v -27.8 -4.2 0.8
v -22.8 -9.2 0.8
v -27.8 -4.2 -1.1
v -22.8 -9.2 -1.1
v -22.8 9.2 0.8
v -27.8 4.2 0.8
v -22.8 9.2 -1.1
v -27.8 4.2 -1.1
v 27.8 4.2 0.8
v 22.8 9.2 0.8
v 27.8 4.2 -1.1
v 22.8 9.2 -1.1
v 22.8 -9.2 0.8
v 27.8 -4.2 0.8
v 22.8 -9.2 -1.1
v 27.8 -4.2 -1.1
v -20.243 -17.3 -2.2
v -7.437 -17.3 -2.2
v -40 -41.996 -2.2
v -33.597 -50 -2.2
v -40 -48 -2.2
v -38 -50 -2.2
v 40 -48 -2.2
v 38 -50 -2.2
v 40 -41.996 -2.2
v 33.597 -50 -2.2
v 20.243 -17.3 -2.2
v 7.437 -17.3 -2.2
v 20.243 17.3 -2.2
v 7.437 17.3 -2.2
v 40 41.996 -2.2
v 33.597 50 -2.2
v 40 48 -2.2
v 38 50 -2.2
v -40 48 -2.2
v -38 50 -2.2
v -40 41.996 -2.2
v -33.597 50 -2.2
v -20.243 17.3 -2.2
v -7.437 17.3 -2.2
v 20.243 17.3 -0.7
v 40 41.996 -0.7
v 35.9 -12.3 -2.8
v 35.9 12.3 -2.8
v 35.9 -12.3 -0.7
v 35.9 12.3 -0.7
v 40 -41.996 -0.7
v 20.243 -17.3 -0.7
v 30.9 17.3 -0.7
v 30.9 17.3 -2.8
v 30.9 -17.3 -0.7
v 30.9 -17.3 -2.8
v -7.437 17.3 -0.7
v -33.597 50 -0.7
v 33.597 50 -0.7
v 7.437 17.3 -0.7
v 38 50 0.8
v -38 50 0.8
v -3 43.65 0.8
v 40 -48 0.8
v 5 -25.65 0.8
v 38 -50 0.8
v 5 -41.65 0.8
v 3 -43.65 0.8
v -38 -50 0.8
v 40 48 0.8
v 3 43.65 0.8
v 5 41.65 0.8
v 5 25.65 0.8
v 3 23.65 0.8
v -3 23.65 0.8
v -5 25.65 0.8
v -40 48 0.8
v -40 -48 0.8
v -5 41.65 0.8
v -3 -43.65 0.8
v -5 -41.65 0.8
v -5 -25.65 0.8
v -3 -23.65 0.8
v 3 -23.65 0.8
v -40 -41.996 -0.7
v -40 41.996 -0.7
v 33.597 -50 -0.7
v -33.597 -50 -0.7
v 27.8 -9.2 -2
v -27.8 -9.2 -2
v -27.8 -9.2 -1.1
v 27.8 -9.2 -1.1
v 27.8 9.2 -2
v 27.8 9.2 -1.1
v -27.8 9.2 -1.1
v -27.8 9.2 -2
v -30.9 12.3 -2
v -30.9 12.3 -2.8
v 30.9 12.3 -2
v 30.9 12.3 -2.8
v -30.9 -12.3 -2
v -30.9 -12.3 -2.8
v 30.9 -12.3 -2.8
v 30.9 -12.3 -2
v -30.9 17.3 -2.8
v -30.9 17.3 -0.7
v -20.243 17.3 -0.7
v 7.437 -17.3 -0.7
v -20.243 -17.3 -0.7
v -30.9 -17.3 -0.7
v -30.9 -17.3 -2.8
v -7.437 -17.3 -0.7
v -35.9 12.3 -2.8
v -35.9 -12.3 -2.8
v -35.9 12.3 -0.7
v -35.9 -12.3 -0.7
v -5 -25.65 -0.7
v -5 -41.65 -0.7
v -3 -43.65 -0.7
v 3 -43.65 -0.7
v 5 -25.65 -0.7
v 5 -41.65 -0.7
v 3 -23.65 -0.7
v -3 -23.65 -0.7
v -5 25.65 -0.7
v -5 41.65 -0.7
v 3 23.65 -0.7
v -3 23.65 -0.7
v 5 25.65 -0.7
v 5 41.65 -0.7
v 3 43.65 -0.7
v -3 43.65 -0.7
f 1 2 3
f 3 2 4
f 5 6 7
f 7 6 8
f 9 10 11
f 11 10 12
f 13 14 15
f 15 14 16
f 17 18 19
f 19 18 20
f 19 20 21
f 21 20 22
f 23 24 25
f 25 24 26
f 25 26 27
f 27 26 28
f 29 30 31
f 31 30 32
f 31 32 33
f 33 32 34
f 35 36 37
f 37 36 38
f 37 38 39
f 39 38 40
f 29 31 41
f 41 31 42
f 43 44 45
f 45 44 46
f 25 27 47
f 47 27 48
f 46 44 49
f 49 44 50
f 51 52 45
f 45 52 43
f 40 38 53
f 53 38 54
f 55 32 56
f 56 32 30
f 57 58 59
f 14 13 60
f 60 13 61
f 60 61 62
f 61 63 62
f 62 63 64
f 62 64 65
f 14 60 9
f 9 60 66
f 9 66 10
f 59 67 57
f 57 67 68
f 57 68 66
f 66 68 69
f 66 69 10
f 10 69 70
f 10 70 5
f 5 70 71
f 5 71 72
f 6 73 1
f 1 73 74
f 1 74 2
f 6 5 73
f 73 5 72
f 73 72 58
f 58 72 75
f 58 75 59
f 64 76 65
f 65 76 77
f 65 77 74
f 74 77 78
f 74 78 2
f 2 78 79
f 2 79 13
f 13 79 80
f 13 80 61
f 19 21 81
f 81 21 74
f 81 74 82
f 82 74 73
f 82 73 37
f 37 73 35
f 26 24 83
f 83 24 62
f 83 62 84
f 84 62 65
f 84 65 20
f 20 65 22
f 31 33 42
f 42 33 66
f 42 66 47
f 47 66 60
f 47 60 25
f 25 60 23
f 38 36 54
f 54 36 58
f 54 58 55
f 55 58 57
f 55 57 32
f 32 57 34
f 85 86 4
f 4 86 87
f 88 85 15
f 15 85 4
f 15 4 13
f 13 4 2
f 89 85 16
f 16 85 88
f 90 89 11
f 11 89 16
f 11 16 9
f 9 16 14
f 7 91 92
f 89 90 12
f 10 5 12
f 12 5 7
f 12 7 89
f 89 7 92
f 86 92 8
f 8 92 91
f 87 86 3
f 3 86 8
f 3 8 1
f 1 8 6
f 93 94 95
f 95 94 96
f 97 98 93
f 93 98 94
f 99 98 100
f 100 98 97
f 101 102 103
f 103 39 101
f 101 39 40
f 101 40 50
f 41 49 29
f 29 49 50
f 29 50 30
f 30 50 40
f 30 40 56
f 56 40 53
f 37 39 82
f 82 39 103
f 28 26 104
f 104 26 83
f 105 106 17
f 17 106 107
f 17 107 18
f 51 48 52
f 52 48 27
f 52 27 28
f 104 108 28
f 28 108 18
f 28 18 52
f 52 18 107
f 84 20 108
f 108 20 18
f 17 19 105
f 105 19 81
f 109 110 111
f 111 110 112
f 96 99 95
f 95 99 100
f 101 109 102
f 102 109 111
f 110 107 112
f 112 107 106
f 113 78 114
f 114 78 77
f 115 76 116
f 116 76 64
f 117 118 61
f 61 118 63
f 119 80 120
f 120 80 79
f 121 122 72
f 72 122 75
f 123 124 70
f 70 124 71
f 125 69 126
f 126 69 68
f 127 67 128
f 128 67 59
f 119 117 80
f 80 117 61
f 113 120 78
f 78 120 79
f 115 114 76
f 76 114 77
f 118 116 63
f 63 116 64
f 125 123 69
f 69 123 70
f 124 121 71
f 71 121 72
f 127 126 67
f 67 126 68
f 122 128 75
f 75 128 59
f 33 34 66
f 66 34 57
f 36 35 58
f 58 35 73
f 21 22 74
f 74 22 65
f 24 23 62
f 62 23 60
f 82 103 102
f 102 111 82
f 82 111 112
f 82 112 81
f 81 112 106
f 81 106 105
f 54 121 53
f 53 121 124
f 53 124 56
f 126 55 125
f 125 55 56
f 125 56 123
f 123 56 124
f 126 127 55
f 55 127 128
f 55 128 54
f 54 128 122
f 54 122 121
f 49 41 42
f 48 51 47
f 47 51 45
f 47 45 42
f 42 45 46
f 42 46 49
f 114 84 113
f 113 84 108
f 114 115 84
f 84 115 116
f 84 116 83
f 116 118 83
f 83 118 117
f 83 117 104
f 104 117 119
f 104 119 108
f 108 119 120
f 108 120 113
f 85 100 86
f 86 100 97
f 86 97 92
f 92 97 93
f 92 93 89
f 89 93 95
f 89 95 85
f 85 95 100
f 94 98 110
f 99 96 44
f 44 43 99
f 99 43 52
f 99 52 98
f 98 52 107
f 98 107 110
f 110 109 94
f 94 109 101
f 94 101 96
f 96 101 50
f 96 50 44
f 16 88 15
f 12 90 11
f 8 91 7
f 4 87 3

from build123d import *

# Parameters (mm, degrees)
ESBO_O2_W                = 80
ESBO_O2_H                = 100
ESBO_O2_W_2              = 55.6
ESBO_O2_H_2              = 18.4
RESSALTO_EXTRUS_O1_DEPTH = 0.8
RESSALTO_EXTRUS_O2_DEPTH = 2.2
CHANFRO3_SIZE            = 5
ESBO_O5_W                = 10
ESBO_O5_H                = 20
CORTE_EXTRUS_O1_DEPTH    = 10
CHANFRO4_SIZE            = 2
CHANFRO5_SIZE            = 2
RESSALTO_EXTRUS_O3_DEPTH = 0.7
ESBO_O7_W                = 61.8
ESBO_O7_H                = 24.6
ESBO_O7_W_2              = 55.6
ESBO_O7_H_2              = 18.4
RESSALTO_EXTRUS_O4_DEPTH = 2
ESBO_O8_W                = 61.8
ESBO_O8_H                = 24.6
RESSALTO_EXTRUS_O5_DEPTH = 0.6
CHANFRO6_SIZE            = 5
ESBO_O11_W               = 55.6
ESBO_O11_H               = 18.4
CORTE_EXTRUS_O2_DEPTH    = 0.9


with BuildPart() as part:
    # Esboço2 → Ressalto-extrusão1 (new body)
    with BuildSketch(Plane.XY):
        Rectangle(ESBO_O2_W, ESBO_O2_H)
        Rectangle(ESBO_O2_W_2, ESBO_O2_H_2, mode=Mode.SUBTRACT)
    extrude(amount=RESSALTO_EXTRUS_O1_DEPTH)

    # Esboço4 → Ressalto-extrusão2 (add)
    with BuildSketch(Plane(origin=(0, 0, 0), x_dir=(-1, 0, 0), z_dir=(0, 0, -1))):
        Polygon((40, -41.996094703), (20.243124237, -17.3), (35.9, -17.3), (35.9, 17.3), (20.243124237, 17.3), (40, 41.996094703), (40, 50), (33.596875763, 50), (7.436875763, 17.3), (-7.436875763, 17.3), (-33.596875763, 50), (-40, 50), (-40, 41.996094703), (-20.243124237, 17.3), (-35.9, 17.3), (-35.9, -17.3), (-20.243124237, -17.3), (-40, -41.996094703), (-40, -50), (-33.596875763, -50), (-7.436875763, -17.3), (7.436875763, -17.3), (33.596875763, -50), (40, -50), align=None)
        Polygon((3.436875763, 12.3), (5, 12.3), (16.243124237, 12.3), (30.9, 12.3), (30.9, -12.3), (16.243124237, -12.3), (5, -12.3), (3.436875763, -12.3), (-3.436875763, -12.3), (-5, -12.3), (-16.243124237, -12.3), (-30.9, -12.3), (-30.9, 12.3), (-16.243124237, 12.3), (-5, 12.3), (-2.810379517, 12.3), align=None, mode=Mode.SUBTRACT)
    extrude(amount=RESSALTO_EXTRUS_O2_DEPTH)

    # Chanfro3
    chanfro3_edges = [part.edges().sort_by_distance(p)[0] for p in [
        (-35.9, 17.3, -1.1),
        (35.9, 17.3, -1.1),
        (35.9, -17.3, -1.1),
        (-35.9, -17.3, -1.1),
    ]]
    chamfer(chanfro3_edges, length=CHANFRO3_SIZE)

    # Esboço5 → Corte-extrusão1 (cut)
    with BuildSketch(Plane(origin=(0, 0, 0), x_dir=(-1, 0, 0), z_dir=(0, 0, -1))):
        with Locations((0, 33.65)):
            Rectangle(ESBO_O5_W, ESBO_O5_H)
        with Locations((0, -33.65)):
            Rectangle(ESBO_O5_W, ESBO_O5_H)
    extrude(amount=-CORTE_EXTRUS_O1_DEPTH, mode=Mode.SUBTRACT)

    # Chanfro4
    chanfro4_edges = [part.edges().sort_by_distance(p)[0] for p in [
        (-5, 43.65, 0.4),
        (-5, 23.65, 0.4),
        (5, 23.65, 0.4),
        (5, 43.65, 0.4),
        (-5, -23.65, 0.4),
        (-5, -43.65, 0.4),
        (5, -43.65, 0.4),
        (5, -23.65, 0.4),
    ]]
    chamfer(chanfro4_edges, length=CHANFRO4_SIZE)

    # Chanfro5
    chanfro5_edges = [part.edges().sort_by_distance(p)[0] for p in [
        (-40, 50, -0.7),
        (40, 50, -0.7),
        (40, -50, -0.7),
        (-40, -50, -0.7),
    ]]
    chamfer(chanfro5_edges, length=CHANFRO5_SIZE)

    # Esboço6 → Ressalto-extrusão3 (add)
    # profile 1 of 4: a face of its own
    with BuildSketch(Plane(origin=(0, 0, 0), x_dir=(-1, 0, 0), z_dir=(0, 0, -1))):
        Polygon((30.9, -17.3), (20.243124237, -17.3), (40, -41.996094703), (40, 41.996094703), (20.243124237, 17.3), (30.9, 17.3), (35.9, 12.3), (35.9, -12.3), align=None)
    # profile 2 of 4: a face of its own
    with BuildSketch(Plane(origin=(0, 0, 0), x_dir=(-1, 0, 0), z_dir=(0, 0, -1))):
        Polygon((33.596875763, 50), (-33.596875763, 50), (-7.436875763, 17.3), (7.436875763, 17.3), align=None)
        Polygon((3, 43.65), (5, 41.65), (5, 25.65), (3, 23.65), (-3, 23.65), (-5, 25.65), (-5, 41.65), (-3, 43.65), align=None, mode=Mode.SUBTRACT)
    # profile 3 of 4: a face of its own
    with BuildSketch(Plane(origin=(0, 0, 0), x_dir=(-1, 0, 0), z_dir=(0, 0, -1))):
        Polygon((-40, -41.996094703), (-20.243124237, -17.3), (-30.9, -17.3), (-35.9, -12.3), (-35.9, 12.3), (-30.9, 17.3), (-20.243124237, 17.3), (-40, 41.996094703), align=None)
    # profile 4 of 4: a face of its own
    with BuildSketch(Plane(origin=(0, 0, 0), x_dir=(-1, 0, 0), z_dir=(0, 0, -1))):
        Polygon((33.596875763, -50), (7.436875763, -17.3), (-7.436875763, -17.3), (-33.596875763, -50), align=None)
        Polygon((-5, -25.65), (-5, -41.65), (-3, -43.65), (3, -43.65), (5, -41.65), (5, -25.65), (3, -23.65), (-3, -23.65), align=None, mode=Mode.SUBTRACT)
    extrude(amount=RESSALTO_EXTRUS_O3_DEPTH)

    # Esboço7 → Ressalto-extrusão4 (add)
    with BuildSketch(Plane(origin=(0, 0, 0), x_dir=(-1, 0, 0), z_dir=(0, 0, -1))):
        Rectangle(ESBO_O7_W, ESBO_O7_H)
        Rectangle(ESBO_O7_W_2, ESBO_O7_H_2, mode=Mode.SUBTRACT)
    extrude(amount=RESSALTO_EXTRUS_O4_DEPTH)

    # Esboço8 → Ressalto-extrusão5 (add)
    with BuildSketch(Plane(origin=(0, 0, -2.2), x_dir=(-1, 0, 0), z_dir=(0, 0, -1))):
        Polygon((30.9, 17.3), (-30.9, 17.3), (-35.9, 12.3), (-35.9, -12.3), (-30.9, -17.3), (30.9, -17.3), (35.9, -12.3), (35.9, 12.3), align=None)
        Rectangle(ESBO_O8_W, ESBO_O8_H, mode=Mode.SUBTRACT)
    extrude(amount=RESSALTO_EXTRUS_O5_DEPTH)

    # Chanfro6
    chanfro6_edges = [part.edges().sort_by_distance(p)[0] for p in [
        (-27.8, -9.2, -0.6),
        (27.8, -9.2, -0.6),
        (27.8, 9.2, -0.6),
        (-27.8, 9.2, -0.6),
    ]]
    chamfer(chanfro6_edges, length=CHANFRO6_SIZE)

    # Esboço11 → Corte-extrusão2 (cut)
    with BuildSketch(Plane(origin=(0, 0, -2), x_dir=(-1, 0, 0), z_dir=(0, 0, -1))):
        Rectangle(ESBO_O11_W, ESBO_O11_H)
    extrude(amount=-CORTE_EXTRUS_O2_DEPTH, mode=Mode.SUBTRACT)


solid = part.part
